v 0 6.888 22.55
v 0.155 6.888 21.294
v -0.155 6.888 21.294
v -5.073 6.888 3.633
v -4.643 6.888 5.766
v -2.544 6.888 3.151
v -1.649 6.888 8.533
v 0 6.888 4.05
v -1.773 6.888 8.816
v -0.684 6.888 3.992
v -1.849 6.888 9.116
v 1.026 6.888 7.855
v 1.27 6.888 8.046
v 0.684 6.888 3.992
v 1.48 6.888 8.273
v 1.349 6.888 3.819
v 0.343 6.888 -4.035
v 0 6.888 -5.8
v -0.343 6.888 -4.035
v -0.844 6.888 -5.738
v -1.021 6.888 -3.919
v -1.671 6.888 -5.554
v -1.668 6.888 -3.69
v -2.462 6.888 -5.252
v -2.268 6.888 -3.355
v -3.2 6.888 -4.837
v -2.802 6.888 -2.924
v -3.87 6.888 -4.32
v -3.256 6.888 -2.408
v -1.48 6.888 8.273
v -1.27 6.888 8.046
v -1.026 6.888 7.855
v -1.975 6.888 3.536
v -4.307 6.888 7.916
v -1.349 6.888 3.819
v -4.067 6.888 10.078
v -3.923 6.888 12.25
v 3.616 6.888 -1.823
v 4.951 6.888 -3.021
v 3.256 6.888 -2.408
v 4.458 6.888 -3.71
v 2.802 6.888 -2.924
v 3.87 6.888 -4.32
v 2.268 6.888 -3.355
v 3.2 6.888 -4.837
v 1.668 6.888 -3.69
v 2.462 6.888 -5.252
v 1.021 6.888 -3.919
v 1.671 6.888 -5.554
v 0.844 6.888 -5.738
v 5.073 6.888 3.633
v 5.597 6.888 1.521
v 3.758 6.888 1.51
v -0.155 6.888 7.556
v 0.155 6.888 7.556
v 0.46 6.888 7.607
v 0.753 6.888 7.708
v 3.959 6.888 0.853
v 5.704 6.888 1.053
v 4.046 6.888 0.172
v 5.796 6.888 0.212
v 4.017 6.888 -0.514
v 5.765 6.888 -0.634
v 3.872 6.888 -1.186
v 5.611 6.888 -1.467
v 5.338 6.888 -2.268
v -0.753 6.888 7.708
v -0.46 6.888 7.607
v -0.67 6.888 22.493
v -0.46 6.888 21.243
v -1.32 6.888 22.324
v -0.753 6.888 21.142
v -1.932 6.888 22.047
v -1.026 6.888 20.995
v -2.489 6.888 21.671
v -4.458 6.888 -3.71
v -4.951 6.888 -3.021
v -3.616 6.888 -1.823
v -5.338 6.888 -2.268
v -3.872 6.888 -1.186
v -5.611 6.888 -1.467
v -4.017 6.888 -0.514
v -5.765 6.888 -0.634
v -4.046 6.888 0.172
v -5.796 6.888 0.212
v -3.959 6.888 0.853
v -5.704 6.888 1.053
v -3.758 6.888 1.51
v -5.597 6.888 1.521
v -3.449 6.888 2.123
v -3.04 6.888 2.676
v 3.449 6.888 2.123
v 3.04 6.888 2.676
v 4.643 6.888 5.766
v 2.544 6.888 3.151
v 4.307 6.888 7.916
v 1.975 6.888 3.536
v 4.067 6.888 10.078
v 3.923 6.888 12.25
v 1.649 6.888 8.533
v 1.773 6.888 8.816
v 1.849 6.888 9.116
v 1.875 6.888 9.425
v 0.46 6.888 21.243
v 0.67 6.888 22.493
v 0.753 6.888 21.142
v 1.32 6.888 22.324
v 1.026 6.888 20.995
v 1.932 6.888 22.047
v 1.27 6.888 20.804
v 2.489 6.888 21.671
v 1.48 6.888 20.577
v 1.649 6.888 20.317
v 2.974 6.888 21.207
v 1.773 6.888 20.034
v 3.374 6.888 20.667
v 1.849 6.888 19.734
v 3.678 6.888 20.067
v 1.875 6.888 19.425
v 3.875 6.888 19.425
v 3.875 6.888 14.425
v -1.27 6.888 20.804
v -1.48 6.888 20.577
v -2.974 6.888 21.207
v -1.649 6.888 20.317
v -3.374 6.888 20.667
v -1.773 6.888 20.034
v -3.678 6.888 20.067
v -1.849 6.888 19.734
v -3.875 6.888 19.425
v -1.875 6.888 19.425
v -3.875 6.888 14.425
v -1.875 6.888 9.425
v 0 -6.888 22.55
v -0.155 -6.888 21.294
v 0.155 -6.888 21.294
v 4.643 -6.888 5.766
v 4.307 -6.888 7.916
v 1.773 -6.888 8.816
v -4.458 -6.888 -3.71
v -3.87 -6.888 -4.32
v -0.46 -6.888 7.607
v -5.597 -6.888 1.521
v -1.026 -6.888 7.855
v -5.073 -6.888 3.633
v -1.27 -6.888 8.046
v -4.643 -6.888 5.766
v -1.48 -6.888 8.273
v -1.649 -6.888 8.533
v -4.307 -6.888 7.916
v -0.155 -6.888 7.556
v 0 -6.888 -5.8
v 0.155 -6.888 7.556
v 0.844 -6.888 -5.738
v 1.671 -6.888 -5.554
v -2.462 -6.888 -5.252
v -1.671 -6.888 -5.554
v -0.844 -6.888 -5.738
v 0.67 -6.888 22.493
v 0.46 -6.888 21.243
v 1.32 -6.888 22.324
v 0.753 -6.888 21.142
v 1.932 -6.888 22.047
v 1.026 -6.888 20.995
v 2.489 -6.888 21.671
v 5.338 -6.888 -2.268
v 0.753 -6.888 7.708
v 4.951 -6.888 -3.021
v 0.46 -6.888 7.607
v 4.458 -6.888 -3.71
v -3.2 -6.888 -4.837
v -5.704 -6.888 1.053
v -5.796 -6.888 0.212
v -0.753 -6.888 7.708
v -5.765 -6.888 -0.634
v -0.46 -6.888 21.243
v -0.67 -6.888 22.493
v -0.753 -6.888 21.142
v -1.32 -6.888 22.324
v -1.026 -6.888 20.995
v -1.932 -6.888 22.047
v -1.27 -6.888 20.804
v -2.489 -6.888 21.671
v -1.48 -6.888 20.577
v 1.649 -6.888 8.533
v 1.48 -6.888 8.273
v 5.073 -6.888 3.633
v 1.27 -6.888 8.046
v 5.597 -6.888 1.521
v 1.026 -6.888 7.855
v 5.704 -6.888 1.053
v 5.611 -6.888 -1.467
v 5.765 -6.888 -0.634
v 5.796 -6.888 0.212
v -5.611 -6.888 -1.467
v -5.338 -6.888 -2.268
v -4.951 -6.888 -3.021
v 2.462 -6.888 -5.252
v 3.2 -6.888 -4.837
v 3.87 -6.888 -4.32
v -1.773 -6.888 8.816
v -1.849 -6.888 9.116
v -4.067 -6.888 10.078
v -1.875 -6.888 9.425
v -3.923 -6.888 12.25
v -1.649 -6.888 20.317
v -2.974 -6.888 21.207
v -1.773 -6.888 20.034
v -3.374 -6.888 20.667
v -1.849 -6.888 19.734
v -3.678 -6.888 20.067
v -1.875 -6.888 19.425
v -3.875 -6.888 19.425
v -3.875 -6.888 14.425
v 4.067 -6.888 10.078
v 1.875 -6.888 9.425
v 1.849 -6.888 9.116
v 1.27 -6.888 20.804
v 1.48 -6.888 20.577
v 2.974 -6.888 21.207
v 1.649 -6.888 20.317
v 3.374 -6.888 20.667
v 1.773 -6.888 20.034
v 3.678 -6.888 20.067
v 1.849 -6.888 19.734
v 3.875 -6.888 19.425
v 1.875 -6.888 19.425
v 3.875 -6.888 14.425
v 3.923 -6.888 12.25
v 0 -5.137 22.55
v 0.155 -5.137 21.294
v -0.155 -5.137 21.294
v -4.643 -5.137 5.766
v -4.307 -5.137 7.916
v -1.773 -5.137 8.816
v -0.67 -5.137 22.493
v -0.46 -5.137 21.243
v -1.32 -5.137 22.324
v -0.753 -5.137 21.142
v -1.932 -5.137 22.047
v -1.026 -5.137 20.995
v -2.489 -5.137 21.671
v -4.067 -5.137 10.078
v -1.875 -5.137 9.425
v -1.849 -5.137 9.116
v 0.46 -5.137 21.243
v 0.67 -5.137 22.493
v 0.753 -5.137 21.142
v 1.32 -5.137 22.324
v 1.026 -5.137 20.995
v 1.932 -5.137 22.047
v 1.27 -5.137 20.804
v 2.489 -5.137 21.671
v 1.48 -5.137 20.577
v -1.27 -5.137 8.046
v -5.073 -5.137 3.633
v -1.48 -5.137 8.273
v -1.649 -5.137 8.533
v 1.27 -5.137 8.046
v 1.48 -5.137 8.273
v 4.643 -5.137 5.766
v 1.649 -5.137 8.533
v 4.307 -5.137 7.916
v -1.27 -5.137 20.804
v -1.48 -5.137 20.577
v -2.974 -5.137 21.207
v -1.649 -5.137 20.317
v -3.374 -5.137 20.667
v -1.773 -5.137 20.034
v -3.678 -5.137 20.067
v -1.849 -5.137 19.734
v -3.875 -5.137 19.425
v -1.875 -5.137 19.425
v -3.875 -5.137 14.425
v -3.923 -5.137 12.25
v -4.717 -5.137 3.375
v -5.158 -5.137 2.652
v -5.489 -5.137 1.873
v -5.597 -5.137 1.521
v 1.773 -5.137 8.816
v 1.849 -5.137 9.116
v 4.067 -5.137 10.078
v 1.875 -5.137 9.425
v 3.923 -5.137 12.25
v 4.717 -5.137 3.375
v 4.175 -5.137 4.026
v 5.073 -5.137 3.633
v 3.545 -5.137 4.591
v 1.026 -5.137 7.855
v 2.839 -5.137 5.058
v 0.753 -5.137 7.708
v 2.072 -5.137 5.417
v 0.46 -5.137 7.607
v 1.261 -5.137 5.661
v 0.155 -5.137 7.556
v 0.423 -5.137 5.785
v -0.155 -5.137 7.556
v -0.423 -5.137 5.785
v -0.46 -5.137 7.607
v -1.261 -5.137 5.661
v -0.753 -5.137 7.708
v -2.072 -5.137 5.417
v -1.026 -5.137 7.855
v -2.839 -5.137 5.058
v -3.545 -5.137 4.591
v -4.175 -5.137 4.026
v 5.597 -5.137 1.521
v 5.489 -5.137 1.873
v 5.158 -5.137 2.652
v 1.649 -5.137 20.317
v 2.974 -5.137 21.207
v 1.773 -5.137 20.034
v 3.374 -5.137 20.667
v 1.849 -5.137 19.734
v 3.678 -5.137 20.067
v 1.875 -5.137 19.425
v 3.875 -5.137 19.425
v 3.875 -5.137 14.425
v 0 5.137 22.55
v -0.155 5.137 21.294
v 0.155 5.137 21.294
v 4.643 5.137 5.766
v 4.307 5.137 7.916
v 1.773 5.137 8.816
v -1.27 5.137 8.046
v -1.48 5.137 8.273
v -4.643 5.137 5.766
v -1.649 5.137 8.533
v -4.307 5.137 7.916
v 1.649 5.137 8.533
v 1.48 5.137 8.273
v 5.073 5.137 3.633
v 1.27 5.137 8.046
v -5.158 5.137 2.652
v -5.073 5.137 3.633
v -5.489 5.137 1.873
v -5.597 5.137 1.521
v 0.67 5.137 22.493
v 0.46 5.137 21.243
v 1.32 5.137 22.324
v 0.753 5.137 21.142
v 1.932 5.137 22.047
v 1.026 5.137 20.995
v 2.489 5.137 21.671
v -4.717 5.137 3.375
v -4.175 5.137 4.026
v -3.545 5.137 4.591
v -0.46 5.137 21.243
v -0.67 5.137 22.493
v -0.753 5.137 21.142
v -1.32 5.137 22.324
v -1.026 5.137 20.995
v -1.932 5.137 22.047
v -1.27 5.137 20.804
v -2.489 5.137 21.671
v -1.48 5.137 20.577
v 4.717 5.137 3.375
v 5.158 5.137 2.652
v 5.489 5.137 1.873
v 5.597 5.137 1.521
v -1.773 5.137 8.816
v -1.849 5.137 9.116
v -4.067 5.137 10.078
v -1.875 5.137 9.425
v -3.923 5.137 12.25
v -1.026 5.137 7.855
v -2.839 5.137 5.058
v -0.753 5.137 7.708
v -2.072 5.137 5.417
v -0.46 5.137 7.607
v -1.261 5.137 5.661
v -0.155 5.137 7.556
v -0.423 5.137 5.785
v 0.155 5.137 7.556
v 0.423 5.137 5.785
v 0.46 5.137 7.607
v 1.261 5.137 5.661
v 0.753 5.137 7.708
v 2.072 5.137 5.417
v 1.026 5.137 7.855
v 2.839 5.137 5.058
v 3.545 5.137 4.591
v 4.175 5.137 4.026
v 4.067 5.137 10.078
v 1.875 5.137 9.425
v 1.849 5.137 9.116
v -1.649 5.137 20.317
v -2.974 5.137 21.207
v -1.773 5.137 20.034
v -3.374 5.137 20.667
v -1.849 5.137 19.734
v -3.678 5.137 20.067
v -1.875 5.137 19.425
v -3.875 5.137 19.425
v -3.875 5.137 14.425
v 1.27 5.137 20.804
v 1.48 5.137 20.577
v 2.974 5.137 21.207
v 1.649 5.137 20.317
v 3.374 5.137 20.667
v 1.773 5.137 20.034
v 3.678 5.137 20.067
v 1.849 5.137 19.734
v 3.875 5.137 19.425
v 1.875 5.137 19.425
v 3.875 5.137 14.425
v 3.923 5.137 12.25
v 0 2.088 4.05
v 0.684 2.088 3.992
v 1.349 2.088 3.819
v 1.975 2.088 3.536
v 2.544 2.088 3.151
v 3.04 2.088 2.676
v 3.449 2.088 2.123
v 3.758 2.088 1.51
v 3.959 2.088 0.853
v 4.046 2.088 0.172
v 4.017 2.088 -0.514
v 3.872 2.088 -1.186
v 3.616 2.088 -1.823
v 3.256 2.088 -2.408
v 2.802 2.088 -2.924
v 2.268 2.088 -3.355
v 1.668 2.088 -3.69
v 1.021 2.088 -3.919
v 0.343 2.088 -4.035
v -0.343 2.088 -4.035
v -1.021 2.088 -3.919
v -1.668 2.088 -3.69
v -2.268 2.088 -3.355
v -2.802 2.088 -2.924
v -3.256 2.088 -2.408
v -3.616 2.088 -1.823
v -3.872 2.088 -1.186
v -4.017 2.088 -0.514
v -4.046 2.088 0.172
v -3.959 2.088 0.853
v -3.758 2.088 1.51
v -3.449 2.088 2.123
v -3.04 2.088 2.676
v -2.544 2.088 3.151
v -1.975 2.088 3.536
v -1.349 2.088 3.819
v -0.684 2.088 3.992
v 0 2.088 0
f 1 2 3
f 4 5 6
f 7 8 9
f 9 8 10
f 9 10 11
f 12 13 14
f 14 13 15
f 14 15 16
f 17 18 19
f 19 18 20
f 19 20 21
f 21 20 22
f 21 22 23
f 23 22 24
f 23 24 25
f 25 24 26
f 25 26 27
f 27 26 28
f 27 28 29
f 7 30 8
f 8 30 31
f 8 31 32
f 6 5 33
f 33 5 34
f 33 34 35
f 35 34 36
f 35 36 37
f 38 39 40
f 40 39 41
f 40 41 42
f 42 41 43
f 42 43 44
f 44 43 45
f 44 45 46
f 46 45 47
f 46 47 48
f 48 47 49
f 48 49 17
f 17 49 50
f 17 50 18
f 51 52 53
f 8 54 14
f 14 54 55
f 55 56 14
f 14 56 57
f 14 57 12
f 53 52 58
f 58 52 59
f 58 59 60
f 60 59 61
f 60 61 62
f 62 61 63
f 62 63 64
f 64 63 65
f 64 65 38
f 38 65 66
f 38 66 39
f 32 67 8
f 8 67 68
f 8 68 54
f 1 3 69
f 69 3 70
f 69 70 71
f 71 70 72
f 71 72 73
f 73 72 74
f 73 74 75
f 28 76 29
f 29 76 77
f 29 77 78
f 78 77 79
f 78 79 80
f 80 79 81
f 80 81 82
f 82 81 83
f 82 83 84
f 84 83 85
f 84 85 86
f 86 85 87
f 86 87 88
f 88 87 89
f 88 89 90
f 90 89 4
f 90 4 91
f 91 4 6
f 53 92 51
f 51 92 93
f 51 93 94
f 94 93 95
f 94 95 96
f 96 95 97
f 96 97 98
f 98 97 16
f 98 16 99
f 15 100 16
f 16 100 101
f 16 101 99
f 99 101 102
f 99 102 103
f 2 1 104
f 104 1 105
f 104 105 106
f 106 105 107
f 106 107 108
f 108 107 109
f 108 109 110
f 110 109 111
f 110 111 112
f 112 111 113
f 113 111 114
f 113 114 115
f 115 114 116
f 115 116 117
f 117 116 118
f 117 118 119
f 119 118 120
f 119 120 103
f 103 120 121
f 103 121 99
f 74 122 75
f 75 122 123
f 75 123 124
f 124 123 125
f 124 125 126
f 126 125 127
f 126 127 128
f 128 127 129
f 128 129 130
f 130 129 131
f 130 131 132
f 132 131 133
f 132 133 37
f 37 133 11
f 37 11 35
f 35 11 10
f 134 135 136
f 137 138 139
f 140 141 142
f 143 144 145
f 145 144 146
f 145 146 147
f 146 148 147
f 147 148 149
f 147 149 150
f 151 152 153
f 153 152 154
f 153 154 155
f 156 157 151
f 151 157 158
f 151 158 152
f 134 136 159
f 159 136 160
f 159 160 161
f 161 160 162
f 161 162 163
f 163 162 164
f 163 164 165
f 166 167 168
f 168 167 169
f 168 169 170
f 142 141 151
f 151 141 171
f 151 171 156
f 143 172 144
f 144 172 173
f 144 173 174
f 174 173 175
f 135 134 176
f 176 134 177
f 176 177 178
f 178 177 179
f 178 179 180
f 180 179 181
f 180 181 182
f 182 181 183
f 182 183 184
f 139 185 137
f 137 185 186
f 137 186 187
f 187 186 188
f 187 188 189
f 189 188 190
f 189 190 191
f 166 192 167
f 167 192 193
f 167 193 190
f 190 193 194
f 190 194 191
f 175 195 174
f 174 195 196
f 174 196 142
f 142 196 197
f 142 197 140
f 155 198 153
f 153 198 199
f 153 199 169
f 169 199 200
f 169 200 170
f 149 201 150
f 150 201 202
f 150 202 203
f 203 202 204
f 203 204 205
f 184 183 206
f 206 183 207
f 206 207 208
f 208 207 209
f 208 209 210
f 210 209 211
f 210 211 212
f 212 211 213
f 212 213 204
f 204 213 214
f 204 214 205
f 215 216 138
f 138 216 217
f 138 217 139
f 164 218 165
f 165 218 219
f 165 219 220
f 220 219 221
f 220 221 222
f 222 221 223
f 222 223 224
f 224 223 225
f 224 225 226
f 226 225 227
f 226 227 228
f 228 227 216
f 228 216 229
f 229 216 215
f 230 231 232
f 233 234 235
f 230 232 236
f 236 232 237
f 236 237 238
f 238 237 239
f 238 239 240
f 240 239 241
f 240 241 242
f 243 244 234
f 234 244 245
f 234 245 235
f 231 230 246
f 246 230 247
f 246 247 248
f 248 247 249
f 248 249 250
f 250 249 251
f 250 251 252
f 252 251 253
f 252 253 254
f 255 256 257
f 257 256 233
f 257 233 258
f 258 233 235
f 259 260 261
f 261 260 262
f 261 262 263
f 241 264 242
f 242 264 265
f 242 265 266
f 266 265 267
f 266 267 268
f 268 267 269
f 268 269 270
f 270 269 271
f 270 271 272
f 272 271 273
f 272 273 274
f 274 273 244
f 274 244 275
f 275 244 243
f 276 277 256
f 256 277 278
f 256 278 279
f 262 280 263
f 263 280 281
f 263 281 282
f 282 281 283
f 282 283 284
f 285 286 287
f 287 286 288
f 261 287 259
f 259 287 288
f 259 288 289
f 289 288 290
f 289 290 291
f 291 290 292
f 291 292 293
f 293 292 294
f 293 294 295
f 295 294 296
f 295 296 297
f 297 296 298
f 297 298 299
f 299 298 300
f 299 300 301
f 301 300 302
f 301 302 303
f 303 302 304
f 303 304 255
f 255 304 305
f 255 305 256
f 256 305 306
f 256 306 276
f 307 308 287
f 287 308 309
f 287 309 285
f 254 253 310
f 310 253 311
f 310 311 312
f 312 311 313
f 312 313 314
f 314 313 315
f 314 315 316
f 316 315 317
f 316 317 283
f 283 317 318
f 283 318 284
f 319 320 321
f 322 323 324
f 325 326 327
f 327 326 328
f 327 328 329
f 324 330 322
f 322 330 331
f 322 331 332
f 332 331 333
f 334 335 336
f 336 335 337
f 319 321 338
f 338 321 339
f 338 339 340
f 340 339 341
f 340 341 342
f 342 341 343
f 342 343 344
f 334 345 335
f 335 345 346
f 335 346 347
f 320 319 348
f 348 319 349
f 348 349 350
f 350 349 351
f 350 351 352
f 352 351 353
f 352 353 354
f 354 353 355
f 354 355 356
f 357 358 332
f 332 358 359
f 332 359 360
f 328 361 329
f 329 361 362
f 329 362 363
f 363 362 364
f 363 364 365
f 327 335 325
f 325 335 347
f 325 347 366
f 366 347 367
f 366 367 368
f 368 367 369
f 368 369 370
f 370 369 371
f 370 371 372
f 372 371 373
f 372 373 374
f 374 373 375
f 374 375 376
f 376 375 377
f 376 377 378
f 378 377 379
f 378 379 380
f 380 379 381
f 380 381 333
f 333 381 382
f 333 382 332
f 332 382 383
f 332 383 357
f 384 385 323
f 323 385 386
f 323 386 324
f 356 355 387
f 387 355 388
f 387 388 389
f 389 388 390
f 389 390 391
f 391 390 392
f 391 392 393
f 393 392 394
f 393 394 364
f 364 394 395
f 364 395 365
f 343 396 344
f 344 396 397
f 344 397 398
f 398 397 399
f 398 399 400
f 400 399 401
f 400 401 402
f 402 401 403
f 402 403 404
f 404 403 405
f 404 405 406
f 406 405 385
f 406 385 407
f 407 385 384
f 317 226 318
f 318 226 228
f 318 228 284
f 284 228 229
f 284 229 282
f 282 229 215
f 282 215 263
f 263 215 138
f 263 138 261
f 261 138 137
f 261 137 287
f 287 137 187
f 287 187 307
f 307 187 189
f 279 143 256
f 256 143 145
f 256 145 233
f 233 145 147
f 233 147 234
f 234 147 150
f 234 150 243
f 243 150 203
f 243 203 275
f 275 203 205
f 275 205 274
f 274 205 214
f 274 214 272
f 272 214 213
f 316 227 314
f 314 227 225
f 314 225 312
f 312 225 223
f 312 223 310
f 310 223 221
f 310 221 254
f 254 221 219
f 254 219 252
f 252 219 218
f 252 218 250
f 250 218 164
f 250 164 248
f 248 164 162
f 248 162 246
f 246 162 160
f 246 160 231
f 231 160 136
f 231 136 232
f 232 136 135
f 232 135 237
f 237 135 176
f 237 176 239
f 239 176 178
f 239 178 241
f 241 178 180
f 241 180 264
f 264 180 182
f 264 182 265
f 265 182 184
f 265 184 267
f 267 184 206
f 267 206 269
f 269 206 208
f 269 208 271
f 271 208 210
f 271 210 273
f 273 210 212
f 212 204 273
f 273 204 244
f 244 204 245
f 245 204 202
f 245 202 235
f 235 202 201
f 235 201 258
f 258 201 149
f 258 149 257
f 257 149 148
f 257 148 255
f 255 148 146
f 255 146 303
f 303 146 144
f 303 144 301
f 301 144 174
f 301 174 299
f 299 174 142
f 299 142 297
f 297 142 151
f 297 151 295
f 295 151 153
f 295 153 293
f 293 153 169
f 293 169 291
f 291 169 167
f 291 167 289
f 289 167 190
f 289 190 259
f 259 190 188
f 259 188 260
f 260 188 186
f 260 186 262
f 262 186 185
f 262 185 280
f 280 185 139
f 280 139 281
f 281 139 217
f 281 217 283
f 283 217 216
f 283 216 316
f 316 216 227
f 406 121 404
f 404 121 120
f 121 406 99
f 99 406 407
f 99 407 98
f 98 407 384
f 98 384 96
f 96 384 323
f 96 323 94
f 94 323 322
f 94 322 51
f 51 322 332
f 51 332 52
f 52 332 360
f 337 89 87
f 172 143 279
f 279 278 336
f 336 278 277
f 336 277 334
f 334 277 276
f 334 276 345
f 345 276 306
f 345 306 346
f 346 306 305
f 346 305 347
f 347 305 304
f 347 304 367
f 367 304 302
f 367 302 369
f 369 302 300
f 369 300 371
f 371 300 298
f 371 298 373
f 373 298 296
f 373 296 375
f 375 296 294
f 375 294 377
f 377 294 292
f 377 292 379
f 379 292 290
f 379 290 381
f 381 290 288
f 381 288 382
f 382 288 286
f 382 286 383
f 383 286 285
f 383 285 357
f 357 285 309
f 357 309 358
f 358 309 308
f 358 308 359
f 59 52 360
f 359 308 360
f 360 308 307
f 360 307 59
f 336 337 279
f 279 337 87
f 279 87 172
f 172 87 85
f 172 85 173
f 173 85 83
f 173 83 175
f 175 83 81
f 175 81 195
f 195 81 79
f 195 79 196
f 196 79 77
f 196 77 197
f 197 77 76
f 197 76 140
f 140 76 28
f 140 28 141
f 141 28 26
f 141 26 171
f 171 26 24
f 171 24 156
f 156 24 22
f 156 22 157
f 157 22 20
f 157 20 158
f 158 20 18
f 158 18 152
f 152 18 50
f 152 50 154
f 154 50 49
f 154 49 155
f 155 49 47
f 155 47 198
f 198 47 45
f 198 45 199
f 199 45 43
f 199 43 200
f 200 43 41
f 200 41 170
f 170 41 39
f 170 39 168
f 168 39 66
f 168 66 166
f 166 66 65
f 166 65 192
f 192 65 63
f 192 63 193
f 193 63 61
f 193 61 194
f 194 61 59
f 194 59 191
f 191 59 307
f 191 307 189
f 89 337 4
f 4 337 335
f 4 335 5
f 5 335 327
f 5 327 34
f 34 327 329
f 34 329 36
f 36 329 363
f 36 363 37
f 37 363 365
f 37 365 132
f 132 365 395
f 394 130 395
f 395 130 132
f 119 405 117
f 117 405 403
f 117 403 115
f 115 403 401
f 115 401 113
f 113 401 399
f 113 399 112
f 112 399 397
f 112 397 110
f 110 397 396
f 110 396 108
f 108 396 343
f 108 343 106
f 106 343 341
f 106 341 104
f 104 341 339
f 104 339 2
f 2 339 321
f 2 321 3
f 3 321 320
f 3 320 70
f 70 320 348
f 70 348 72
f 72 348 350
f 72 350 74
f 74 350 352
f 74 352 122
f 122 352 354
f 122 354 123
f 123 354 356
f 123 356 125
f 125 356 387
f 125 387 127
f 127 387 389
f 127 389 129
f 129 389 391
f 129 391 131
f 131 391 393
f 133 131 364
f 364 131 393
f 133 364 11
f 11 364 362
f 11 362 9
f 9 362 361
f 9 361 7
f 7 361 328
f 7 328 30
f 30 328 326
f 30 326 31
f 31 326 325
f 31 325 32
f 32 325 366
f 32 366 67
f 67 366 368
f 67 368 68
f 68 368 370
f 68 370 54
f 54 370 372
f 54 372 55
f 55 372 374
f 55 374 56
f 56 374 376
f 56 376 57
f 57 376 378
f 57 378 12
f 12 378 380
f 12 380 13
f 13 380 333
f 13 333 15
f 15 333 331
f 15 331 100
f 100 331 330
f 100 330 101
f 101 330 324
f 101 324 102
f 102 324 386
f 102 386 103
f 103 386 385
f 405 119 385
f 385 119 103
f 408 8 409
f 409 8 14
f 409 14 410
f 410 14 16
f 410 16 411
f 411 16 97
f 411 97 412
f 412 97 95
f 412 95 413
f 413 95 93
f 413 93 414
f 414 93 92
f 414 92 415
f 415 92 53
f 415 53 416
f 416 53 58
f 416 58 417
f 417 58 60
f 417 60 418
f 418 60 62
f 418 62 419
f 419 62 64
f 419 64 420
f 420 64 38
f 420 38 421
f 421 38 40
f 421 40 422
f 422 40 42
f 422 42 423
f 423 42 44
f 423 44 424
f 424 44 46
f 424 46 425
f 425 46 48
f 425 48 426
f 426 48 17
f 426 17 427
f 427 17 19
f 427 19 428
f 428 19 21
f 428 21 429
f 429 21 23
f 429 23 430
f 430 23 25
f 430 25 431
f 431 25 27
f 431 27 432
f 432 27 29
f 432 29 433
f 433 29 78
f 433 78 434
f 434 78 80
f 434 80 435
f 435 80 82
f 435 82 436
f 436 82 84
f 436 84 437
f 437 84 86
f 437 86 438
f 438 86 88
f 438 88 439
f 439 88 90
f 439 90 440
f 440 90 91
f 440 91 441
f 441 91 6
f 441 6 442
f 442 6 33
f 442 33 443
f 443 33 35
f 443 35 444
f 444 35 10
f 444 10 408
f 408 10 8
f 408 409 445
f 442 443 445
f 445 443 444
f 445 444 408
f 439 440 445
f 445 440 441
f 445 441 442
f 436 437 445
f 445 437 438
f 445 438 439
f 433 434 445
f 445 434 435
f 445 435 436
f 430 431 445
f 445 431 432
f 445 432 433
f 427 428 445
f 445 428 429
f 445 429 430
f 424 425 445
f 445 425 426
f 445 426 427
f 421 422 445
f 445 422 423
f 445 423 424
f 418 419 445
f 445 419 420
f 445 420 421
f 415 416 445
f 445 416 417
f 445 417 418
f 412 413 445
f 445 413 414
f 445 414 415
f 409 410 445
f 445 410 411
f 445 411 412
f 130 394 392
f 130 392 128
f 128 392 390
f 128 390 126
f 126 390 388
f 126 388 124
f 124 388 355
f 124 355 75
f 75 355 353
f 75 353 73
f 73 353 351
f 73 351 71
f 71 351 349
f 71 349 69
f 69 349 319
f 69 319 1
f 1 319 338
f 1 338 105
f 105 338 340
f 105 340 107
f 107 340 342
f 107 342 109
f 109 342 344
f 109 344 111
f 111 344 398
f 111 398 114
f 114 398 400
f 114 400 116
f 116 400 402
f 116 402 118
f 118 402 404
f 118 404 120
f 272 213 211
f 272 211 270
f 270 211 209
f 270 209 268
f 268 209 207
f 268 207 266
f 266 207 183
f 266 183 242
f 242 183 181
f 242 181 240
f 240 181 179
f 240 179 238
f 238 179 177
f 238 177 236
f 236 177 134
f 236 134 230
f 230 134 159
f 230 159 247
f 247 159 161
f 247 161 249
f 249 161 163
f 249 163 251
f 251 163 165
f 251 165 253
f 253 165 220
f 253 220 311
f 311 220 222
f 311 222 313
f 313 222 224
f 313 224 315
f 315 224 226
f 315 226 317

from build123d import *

# Parameters (mm, degrees)
SKETCH1_R           = 5.8
SKETCH1_R_2         = 4.05
BOSS_EXTRUDE1_DEPTH = 6.8875
CUT_EXTRUDE1_START  = -5.1375
CUT_EXTRUDE1_DEPTH  = 10.274999888
CUT_EXTRUDE2_START  = 6.8875
SKETCH1_5_R         = 4.05
CUT_EXTRUDE2_DEPTH  = 4.8
CUT_EXTRUDE3_DEPTH  = 28.681774239


with BuildPart() as part:
    # Sketch1 → Boss-Extrude1 (new, symmetric)
    with BuildSketch(Plane(origin=(0, 0, 0), x_dir=(1, 0, 0), z_dir=(0, 1, 0))):
        with BuildLine():
            ThreePointArc((-5.597034746, -1.520921448), (-4.307408497, -7.915763352), (-3.875, -14.425))
            Line((-3.875, -14.425), (-3.875, -19.425))
            ThreePointArc((-3.875, -19.425), (0, -23.3), (3.875, -19.425))
            Line((3.875, -19.425), (3.875, -14.425))
            ThreePointArc((3.875, -14.425), (4.307408497, -7.915763352), (5.597034746, -1.520921448))
            ThreePointArc((5.597034746, -1.520921448), (0, -5.8), (-5.597034746, -1.520921448))
        make_face()
        with BuildLine():
            ThreePointArc((-1.875, -9.425), (0, -7.55), (1.875, -9.425))
            Line((1.875, -9.425), (1.875, -19.425))
            ThreePointArc((1.875, -19.425), (0, -21.3), (-1.875, -19.425))
            Line((-1.875, -19.425), (-1.875, -9.425))
        make_face(mode=Mode.SUBTRACT)
        Circle(SKETCH1_R)
        Circle(SKETCH1_R_2, mode=Mode.SUBTRACT)
        Circle(SKETCH1_R_2)
    extrude(amount=BOSS_EXTRUDE1_DEPTH, both=True)

    # Sketch1<4> → Cut-Extrude1 (cut)
    with BuildSketch(Plane(origin=(0, 0, 0), x_dir=(1, 0, 0), z_dir=(0, 1, 0)).offset(CUT_EXTRUDE1_START)):
        with BuildLine():
            ThreePointArc((-5.597034746, -1.520921448), (-4.307408497, -7.915763352), (-3.875, -14.425))
            Line((-3.875, -14.425), (-3.875, -19.425))
            ThreePointArc((-3.875, -19.425), (0, -23.3), (3.875, -19.425))
            Line((3.875, -19.425), (3.875, -14.425))
            ThreePointArc((3.875, -14.425), (4.307408497, -7.915763352), (5.597034746, -1.520921448))
            ThreePointArc((5.597034746, -1.520921448), (0, -5.8), (-5.597034746, -1.520921448))
        make_face()
        with BuildLine():
            ThreePointArc((-1.875, -9.425), (0, -7.55), (1.875, -9.425))
            Line((1.875, -9.425), (1.875, -19.425))
            ThreePointArc((1.875, -19.425), (0, -21.3), (-1.875, -19.425))
            Line((-1.875, -19.425), (-1.875, -9.425))
        make_face(mode=Mode.SUBTRACT)
    extrude(amount=CUT_EXTRUDE1_DEPTH, mode=Mode.SUBTRACT)

    # Sketch1<5> → Cut-Extrude2 (cut)
    with BuildSketch(Plane(origin=(0, 0, 0), x_dir=(1, 0, 0), z_dir=(0, 1, 0)).offset(CUT_EXTRUDE2_START)):
        with Locations(Location((0, 0, 0), (0, 0, 270))):
            Circle(SKETCH1_5_R)
    extrude(amount=-CUT_EXTRUDE2_DEPTH, mode=Mode.SUBTRACT)

    # Sketch4 → Cut-Extrude3 (cut, through all)
    with BuildSketch(Plane.XZ.offset(6.8875)):
        with BuildLine():
            ThreePointArc((-3.875, 19.425), (0, 22.55), (3.875, 19.425))
            ThreePointArc((3.875, 19.425), (0, 23.3), (-3.875, 19.425))
        make_face()
    extrude(amount=-CUT_EXTRUDE3_DEPTH, mode=Mode.SUBTRACT)


solid = part.part
